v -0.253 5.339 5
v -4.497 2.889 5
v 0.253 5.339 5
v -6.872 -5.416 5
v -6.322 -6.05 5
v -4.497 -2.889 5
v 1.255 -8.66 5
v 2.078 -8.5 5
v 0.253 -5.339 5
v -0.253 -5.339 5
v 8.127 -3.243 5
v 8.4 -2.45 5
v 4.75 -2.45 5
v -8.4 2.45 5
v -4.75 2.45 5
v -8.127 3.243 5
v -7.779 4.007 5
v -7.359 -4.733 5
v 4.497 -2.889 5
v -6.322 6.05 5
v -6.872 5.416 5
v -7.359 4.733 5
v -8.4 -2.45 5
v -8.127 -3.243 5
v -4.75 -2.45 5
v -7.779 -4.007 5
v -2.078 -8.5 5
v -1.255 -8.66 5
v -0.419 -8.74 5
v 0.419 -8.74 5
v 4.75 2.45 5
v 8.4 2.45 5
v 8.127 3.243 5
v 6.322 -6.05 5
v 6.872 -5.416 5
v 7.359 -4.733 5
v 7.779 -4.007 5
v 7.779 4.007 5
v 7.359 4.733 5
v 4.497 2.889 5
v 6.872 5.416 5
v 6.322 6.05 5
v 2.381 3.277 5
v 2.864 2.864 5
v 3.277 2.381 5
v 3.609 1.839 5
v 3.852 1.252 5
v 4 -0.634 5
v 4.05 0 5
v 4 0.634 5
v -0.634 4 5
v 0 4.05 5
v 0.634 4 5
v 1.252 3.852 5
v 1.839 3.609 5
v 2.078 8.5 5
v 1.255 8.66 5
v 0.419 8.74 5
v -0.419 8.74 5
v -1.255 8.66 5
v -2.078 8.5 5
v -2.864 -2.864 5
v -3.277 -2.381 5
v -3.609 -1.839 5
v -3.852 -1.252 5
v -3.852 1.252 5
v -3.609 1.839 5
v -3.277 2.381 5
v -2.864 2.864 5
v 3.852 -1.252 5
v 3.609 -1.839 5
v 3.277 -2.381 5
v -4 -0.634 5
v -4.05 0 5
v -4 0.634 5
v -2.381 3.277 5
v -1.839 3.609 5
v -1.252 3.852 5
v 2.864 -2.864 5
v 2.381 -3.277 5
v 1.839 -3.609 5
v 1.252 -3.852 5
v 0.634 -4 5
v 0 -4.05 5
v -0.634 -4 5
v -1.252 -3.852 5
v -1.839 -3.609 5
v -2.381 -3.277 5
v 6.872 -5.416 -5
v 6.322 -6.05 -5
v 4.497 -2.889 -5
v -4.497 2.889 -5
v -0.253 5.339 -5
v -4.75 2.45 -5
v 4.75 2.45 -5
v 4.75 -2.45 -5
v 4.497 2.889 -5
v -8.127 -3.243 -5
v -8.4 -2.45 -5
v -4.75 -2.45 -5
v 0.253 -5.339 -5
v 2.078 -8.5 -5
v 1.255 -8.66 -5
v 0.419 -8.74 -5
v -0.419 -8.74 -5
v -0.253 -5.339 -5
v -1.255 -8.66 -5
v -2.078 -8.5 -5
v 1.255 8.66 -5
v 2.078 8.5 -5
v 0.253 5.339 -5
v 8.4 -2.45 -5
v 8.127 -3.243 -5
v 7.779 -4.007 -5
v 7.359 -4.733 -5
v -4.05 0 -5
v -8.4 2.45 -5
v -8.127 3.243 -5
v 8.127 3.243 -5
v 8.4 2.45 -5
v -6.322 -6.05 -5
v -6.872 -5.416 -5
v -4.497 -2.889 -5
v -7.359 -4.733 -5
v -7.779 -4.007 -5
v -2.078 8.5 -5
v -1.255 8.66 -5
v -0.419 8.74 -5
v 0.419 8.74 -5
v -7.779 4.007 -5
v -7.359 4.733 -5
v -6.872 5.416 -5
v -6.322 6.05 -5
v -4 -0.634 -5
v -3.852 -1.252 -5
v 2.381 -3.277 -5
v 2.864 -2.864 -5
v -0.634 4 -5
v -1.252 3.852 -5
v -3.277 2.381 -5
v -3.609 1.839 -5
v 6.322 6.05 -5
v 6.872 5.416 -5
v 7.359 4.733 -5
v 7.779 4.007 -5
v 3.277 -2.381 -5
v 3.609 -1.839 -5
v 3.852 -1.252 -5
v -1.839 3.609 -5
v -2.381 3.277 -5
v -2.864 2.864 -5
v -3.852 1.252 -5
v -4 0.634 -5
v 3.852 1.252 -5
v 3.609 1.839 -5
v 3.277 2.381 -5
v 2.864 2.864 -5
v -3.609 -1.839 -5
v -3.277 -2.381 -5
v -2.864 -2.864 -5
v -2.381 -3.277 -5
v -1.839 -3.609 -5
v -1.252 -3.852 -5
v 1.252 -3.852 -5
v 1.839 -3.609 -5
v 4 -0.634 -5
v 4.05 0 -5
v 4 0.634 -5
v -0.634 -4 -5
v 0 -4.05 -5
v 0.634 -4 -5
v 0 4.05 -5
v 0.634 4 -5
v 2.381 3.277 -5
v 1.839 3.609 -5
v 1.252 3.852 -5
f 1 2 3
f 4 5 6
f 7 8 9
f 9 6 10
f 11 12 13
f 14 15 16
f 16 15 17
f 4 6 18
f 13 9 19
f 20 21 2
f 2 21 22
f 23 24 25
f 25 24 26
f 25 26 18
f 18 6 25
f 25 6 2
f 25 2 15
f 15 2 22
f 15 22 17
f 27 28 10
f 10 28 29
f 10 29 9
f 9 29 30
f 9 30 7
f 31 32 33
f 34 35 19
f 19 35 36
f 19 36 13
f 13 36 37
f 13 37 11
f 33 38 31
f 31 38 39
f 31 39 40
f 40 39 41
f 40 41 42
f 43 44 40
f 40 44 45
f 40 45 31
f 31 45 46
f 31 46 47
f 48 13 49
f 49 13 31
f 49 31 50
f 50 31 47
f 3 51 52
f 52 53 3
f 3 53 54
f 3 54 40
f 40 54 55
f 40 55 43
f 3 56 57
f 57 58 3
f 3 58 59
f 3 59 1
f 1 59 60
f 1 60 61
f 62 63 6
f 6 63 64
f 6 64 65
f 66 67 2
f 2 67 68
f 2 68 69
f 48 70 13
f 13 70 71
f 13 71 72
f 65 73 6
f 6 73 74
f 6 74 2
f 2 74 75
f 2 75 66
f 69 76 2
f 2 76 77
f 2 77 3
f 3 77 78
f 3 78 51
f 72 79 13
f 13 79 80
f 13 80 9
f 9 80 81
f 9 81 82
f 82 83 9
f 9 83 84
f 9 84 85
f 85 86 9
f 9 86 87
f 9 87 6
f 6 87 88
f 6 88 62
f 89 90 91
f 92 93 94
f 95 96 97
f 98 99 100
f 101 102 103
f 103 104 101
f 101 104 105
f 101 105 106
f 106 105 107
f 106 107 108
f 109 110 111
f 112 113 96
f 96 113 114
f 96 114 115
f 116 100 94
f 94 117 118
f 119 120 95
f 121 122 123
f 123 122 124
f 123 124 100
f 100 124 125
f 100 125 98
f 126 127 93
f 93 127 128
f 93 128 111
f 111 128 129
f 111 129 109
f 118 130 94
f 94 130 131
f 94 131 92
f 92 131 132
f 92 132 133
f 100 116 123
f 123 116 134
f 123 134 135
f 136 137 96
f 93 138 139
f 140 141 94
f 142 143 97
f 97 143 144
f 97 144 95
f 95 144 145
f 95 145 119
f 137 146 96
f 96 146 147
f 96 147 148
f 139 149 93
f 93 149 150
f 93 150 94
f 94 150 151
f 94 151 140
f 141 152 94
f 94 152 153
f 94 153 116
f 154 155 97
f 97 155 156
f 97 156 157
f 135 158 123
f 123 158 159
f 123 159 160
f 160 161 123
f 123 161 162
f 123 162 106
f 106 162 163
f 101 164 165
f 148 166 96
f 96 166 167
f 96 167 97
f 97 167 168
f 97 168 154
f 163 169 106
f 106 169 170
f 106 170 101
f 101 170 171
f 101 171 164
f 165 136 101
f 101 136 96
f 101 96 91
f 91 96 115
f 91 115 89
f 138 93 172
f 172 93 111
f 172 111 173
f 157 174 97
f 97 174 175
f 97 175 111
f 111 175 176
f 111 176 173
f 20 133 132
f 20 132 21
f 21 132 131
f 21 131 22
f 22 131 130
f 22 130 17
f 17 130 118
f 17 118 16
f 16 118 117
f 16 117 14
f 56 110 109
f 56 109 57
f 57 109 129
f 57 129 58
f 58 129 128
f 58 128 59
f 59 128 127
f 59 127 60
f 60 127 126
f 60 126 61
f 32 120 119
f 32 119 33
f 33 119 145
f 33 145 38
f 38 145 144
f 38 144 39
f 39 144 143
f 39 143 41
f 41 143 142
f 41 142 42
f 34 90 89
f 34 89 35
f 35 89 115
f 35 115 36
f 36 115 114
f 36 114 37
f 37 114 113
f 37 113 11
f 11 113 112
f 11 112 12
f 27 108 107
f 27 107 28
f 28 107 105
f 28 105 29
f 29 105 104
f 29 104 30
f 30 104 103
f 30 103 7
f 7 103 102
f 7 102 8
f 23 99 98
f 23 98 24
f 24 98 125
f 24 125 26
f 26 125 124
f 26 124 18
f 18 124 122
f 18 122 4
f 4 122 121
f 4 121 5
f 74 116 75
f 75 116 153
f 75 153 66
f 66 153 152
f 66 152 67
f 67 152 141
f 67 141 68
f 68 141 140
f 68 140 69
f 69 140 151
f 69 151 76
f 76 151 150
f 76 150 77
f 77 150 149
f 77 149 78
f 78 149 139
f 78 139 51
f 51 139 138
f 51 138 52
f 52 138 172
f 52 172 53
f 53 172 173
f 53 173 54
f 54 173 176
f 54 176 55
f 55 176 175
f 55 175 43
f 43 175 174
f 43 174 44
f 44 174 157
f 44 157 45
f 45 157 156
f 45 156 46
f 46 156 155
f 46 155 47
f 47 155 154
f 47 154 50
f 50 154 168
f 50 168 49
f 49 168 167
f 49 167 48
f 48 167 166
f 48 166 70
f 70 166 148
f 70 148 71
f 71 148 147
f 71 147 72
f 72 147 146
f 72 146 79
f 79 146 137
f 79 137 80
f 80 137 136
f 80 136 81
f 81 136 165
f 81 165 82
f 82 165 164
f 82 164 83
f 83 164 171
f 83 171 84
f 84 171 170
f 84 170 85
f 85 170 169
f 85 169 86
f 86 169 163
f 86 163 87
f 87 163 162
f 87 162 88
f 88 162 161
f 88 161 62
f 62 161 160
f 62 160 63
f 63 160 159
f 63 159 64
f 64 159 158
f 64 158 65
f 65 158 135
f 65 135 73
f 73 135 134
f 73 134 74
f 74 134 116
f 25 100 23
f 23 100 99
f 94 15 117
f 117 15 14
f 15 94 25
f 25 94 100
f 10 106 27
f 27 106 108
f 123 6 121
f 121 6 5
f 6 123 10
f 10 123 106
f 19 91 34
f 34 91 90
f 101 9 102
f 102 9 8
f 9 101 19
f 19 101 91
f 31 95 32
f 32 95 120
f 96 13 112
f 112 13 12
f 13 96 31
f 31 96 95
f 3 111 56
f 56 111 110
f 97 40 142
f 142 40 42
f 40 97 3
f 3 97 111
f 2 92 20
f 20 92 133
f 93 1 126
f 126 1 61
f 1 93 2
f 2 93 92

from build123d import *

# Parameters (mm, degrees)
SKETCH1_R           = 8.75
SKETCH1_R_2         = 4.05
BOSS_EXTRUDE1_DEPTH = 5
SKETCH2_W           = 4.9
SKETCH2_H           = 10
CUT_EXTRUDE3_DEPTH  = 4
CIRPATTERN1_COUNT   = 6


with BuildPart() as part:
    # Sketch1 → Boss-Extrude1 (new, symmetric)
    with BuildSketch(Plane.XY):
        Circle(SKETCH1_R)
        Circle(SKETCH1_R_2, mode=Mode.SUBTRACT)
    extrude(amount=BOSS_EXTRUDE1_DEPTH, both=True)

    # Sketch2 → Cut-Extrude3 (cut)
    with BuildSketch(Plane(origin=(-8.75, -17.193061184, 0), x_dir=(0, -1, 0), z_dir=(1, 0, 0))):
        with Locations((-17.193061184, 0)):
            Rectangle(SKETCH2_W, SKETCH2_H)
    cut_extrude3 = extrude(amount=CUT_EXTRUDE3_DEPTH, mode=Mode.SUBTRACT)

    # CirPattern1: Cut-Extrude3 ×6 about axis
    cirpattern1_axis = Axis((0, 0, 5), (0, 0, 1))
    for i in range(1, CIRPATTERN1_COUNT):
        add(cut_extrude3.rotate(cirpattern1_axis, i * 360 / CIRPATTERN1_COUNT), mode=Mode.SUBTRACT)


solid = part.part
